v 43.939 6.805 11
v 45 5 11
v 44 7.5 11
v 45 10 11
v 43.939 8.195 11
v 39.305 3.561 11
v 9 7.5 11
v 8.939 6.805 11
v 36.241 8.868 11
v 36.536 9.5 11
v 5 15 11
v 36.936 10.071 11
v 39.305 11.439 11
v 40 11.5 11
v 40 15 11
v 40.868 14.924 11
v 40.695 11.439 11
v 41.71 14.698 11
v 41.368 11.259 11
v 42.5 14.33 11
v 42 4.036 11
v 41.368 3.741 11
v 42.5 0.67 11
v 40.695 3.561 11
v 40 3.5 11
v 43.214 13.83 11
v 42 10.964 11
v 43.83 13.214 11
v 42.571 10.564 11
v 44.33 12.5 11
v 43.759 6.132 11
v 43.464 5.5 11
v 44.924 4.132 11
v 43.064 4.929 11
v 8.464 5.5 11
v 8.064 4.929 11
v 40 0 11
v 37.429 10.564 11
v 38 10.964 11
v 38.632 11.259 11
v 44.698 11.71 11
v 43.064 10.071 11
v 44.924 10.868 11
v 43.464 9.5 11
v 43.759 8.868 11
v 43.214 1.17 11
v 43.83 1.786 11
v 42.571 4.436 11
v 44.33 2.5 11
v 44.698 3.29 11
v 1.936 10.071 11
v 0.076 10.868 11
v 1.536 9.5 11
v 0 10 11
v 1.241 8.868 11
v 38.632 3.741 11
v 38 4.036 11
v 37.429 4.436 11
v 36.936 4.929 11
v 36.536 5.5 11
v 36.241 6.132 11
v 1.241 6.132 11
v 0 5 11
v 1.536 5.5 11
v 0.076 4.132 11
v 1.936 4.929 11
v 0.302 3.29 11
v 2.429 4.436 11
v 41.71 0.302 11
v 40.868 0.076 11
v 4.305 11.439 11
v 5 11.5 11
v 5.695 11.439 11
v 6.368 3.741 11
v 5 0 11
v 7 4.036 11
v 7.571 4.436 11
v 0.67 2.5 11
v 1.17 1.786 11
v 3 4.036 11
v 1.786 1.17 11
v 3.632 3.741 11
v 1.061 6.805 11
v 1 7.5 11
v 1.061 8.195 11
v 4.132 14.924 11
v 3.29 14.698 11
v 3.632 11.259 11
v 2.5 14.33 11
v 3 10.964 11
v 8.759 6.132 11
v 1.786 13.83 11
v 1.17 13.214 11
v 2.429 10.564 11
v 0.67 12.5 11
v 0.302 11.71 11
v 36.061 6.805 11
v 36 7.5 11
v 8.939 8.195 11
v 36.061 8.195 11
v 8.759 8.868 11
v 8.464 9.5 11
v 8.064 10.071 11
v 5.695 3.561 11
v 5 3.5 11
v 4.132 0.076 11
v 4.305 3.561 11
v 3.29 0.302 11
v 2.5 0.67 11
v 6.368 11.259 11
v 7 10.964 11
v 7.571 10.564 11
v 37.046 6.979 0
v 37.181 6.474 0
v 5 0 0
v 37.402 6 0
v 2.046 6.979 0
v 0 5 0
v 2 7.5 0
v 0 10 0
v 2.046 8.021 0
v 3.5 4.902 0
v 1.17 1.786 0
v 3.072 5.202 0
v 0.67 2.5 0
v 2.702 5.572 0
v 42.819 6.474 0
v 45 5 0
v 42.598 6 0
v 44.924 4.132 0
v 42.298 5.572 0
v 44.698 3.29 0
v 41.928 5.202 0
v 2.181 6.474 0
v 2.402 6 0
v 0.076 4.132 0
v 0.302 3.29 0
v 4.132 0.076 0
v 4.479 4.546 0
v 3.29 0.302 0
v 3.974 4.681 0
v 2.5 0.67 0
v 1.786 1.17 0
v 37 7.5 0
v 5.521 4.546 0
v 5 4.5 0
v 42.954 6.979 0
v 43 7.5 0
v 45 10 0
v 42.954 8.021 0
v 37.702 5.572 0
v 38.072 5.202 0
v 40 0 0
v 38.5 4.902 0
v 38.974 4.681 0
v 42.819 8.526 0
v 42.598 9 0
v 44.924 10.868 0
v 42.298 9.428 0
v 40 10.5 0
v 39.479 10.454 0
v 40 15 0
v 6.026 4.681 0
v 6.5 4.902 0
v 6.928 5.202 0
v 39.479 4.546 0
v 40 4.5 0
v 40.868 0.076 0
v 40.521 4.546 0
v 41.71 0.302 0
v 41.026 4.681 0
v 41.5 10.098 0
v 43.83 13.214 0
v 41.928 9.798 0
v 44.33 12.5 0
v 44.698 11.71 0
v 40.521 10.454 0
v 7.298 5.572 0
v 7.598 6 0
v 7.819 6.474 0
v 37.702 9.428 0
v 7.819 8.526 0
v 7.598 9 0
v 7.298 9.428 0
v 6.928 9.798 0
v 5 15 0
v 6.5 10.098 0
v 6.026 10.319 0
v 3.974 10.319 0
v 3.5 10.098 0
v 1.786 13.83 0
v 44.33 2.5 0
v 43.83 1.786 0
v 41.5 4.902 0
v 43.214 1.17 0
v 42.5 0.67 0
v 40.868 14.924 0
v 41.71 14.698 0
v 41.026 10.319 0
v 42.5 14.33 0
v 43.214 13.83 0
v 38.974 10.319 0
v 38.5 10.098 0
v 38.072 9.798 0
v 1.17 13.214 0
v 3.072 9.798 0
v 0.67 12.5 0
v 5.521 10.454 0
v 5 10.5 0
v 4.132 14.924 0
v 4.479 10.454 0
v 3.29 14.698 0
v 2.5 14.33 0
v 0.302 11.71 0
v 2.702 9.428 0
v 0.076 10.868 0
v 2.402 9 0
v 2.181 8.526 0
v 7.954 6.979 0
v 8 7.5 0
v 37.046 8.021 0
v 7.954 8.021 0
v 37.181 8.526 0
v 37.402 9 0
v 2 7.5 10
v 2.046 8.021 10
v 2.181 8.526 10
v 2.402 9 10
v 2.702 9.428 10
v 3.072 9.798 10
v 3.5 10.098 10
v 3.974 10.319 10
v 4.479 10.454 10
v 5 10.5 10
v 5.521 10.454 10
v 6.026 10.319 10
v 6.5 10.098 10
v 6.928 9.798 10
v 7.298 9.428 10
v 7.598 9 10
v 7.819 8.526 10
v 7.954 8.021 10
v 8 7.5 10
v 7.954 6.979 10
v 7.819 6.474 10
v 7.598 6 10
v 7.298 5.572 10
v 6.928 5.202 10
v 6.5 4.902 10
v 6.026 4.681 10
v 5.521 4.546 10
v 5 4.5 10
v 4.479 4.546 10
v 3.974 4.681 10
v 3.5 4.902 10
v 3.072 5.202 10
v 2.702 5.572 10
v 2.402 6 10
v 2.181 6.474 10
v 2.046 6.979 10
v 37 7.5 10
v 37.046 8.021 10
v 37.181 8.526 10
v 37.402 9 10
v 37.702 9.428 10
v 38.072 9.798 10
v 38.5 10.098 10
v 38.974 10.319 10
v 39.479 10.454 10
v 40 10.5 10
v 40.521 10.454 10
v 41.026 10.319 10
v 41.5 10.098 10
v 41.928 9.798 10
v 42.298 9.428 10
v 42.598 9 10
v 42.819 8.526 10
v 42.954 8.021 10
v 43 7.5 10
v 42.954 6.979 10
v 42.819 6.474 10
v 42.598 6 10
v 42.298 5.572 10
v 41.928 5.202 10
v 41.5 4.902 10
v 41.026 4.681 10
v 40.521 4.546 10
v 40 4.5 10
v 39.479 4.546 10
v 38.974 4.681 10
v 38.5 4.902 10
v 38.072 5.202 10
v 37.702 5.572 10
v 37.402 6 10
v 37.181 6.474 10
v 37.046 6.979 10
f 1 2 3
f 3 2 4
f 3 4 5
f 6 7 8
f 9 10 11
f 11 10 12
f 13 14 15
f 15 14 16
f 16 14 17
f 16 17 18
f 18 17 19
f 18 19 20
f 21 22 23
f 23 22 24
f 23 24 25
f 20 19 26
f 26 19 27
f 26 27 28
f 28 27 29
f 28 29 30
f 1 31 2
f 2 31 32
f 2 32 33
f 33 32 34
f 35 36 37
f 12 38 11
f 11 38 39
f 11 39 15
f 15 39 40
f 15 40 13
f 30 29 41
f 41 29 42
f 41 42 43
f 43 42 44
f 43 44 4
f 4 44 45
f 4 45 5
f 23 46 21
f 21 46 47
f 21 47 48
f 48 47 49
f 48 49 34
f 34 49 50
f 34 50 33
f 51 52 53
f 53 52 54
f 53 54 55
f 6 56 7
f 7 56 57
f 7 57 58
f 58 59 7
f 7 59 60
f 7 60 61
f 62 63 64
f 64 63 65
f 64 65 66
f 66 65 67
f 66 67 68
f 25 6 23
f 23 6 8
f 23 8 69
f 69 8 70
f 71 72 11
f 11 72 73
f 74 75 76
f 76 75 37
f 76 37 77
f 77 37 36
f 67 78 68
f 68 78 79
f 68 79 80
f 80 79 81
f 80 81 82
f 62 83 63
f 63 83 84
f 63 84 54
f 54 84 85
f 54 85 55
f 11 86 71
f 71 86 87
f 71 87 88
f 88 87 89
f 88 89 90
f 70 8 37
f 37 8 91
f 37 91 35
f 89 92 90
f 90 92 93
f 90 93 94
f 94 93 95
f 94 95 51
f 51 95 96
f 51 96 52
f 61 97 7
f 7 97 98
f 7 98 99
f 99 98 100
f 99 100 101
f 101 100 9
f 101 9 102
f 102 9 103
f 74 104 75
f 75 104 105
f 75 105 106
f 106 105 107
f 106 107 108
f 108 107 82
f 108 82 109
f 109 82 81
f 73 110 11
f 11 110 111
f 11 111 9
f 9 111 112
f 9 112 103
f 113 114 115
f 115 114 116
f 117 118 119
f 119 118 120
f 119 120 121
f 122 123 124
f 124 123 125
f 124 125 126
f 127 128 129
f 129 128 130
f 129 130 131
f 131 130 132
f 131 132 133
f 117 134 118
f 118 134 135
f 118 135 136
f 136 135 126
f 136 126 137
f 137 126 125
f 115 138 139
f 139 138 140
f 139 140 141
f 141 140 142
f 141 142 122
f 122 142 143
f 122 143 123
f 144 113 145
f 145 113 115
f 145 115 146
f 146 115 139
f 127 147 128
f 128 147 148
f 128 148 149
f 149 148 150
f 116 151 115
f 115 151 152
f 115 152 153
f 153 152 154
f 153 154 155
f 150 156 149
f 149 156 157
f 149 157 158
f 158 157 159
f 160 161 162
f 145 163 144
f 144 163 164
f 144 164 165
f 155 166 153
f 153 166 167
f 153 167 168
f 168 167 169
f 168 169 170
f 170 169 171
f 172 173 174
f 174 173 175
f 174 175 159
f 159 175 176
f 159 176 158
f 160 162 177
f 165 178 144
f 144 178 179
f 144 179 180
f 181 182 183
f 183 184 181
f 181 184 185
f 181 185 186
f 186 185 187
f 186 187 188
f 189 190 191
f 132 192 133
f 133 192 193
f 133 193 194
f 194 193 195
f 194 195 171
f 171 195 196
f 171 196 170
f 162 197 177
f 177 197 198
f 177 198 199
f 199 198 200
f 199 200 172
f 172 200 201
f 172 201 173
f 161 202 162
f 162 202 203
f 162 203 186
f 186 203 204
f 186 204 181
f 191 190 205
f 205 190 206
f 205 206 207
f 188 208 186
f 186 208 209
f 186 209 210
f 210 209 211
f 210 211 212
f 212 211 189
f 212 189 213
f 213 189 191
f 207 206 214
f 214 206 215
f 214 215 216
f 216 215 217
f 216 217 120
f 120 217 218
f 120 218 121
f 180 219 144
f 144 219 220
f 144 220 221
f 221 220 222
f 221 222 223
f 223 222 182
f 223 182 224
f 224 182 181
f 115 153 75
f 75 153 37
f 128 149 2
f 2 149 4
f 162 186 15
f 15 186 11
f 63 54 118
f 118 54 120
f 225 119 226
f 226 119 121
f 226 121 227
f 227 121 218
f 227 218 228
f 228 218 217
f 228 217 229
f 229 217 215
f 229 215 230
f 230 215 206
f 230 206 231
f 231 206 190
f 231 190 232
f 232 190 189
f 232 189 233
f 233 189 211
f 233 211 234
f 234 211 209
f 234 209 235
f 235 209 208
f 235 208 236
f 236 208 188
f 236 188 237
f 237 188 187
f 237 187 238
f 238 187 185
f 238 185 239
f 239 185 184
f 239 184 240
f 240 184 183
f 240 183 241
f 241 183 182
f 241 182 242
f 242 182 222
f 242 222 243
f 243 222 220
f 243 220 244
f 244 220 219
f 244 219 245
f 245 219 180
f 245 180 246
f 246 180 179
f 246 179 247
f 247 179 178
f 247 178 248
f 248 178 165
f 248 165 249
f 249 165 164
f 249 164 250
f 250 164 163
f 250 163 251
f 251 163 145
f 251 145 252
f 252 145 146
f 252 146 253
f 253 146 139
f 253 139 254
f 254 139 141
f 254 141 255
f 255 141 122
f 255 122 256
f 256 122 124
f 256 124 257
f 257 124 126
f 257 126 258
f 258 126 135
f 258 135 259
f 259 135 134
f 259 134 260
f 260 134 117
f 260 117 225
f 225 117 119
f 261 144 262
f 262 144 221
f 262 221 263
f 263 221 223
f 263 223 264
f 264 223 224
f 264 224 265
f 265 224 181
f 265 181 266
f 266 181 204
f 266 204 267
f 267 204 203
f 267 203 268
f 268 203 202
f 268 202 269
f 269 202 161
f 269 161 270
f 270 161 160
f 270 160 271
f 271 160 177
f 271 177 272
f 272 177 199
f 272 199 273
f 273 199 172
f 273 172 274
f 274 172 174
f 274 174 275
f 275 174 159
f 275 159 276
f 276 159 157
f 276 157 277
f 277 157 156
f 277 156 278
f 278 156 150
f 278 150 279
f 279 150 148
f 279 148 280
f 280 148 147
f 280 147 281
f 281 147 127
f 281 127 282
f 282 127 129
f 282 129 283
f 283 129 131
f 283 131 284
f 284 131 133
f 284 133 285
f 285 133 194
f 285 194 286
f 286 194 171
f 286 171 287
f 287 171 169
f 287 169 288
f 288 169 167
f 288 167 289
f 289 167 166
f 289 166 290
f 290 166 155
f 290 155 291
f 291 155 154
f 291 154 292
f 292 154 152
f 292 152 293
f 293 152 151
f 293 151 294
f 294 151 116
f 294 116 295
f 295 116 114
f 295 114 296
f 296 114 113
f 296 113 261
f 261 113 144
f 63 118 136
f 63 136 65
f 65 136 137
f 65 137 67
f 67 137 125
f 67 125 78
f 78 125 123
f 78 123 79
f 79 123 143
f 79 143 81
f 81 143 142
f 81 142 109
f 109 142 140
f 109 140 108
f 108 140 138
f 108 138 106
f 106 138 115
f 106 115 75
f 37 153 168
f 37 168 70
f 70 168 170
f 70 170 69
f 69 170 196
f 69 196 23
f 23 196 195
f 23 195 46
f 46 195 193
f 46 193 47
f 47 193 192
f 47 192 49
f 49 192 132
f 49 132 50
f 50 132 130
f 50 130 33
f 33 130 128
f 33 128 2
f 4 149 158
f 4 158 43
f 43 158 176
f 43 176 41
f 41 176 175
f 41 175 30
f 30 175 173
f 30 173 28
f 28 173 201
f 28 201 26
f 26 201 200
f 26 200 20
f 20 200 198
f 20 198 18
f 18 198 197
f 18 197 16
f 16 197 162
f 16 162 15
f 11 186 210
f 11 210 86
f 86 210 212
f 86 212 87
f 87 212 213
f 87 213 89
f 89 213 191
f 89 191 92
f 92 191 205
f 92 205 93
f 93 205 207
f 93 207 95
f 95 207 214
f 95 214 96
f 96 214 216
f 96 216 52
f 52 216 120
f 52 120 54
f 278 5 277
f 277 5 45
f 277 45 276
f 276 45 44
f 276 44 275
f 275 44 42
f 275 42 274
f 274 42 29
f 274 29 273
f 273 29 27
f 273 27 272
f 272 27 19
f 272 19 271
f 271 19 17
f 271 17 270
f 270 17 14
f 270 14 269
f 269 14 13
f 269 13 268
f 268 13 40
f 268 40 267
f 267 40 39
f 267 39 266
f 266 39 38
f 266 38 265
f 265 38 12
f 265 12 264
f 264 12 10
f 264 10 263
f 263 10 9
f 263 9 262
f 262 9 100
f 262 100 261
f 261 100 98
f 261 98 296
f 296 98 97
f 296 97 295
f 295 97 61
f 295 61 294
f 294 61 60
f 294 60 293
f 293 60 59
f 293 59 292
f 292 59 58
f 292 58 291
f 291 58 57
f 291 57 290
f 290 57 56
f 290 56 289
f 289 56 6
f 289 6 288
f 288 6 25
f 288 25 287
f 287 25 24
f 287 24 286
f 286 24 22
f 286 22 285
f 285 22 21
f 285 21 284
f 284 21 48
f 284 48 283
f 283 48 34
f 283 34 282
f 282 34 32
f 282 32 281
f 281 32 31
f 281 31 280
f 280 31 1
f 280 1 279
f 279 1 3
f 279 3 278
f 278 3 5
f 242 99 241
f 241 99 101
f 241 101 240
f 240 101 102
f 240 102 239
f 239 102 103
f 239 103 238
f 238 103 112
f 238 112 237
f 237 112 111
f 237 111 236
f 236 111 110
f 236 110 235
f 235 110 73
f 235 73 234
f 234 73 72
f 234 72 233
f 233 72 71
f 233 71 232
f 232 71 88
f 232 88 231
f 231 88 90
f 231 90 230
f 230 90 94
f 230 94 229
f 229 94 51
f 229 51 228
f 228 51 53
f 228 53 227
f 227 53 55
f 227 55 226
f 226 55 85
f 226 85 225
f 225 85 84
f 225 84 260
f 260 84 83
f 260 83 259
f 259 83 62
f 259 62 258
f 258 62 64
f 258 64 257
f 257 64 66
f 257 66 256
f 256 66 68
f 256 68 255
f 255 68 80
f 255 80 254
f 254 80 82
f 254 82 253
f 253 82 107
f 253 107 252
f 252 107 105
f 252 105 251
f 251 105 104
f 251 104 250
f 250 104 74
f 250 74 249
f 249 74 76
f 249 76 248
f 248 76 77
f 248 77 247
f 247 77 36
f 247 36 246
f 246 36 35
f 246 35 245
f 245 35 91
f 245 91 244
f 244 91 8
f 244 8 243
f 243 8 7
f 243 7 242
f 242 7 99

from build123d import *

# Parameters (mm, degrees)
CROQUIS1_W              = 45
CROQUIS1_H              = 15
CROQUIS1_R              = 3
SALIENTE_EXTRUIR1_DEPTH = 11
REDONDEO1_R             = 5
CHAFL_N1_SIZE           = 1


with BuildPart() as part:
    # Croquis1 → Saliente-Extruir1 (new body)
    with BuildSketch(Plane.XY):
        with Locations((22.5, 7.5)):
            Rectangle(CROQUIS1_W, CROQUIS1_H)
        with Locations((5, 7.5)):
            Circle(CROQUIS1_R, mode=Mode.SUBTRACT)
        with Locations((40, 7.5)):
            Circle(CROQUIS1_R, mode=Mode.SUBTRACT)
    extrude(amount=SALIENTE_EXTRUIR1_DEPTH)

    # Redondeo1
    redondeo1_edges = [part.edges().sort_by_distance(p)[0] for p in [
        (0, 0, 5.5),
        (0, 15, 5.5),
        (45, 15, 5.5),
        (45, 0, 5.5),
    ]]
    fillet(redondeo1_edges, radius=REDONDEO1_R)

    # Chaflán1
    chafl_n1_edges = [part.edges().sort_by_distance(p)[0] for p in [
        (2, 7.5, 11),
        (37, 7.5, 11),
    ]]
    chamfer(chafl_n1_edges, length=CHAFL_N1_SIZE)


solid = part.part
